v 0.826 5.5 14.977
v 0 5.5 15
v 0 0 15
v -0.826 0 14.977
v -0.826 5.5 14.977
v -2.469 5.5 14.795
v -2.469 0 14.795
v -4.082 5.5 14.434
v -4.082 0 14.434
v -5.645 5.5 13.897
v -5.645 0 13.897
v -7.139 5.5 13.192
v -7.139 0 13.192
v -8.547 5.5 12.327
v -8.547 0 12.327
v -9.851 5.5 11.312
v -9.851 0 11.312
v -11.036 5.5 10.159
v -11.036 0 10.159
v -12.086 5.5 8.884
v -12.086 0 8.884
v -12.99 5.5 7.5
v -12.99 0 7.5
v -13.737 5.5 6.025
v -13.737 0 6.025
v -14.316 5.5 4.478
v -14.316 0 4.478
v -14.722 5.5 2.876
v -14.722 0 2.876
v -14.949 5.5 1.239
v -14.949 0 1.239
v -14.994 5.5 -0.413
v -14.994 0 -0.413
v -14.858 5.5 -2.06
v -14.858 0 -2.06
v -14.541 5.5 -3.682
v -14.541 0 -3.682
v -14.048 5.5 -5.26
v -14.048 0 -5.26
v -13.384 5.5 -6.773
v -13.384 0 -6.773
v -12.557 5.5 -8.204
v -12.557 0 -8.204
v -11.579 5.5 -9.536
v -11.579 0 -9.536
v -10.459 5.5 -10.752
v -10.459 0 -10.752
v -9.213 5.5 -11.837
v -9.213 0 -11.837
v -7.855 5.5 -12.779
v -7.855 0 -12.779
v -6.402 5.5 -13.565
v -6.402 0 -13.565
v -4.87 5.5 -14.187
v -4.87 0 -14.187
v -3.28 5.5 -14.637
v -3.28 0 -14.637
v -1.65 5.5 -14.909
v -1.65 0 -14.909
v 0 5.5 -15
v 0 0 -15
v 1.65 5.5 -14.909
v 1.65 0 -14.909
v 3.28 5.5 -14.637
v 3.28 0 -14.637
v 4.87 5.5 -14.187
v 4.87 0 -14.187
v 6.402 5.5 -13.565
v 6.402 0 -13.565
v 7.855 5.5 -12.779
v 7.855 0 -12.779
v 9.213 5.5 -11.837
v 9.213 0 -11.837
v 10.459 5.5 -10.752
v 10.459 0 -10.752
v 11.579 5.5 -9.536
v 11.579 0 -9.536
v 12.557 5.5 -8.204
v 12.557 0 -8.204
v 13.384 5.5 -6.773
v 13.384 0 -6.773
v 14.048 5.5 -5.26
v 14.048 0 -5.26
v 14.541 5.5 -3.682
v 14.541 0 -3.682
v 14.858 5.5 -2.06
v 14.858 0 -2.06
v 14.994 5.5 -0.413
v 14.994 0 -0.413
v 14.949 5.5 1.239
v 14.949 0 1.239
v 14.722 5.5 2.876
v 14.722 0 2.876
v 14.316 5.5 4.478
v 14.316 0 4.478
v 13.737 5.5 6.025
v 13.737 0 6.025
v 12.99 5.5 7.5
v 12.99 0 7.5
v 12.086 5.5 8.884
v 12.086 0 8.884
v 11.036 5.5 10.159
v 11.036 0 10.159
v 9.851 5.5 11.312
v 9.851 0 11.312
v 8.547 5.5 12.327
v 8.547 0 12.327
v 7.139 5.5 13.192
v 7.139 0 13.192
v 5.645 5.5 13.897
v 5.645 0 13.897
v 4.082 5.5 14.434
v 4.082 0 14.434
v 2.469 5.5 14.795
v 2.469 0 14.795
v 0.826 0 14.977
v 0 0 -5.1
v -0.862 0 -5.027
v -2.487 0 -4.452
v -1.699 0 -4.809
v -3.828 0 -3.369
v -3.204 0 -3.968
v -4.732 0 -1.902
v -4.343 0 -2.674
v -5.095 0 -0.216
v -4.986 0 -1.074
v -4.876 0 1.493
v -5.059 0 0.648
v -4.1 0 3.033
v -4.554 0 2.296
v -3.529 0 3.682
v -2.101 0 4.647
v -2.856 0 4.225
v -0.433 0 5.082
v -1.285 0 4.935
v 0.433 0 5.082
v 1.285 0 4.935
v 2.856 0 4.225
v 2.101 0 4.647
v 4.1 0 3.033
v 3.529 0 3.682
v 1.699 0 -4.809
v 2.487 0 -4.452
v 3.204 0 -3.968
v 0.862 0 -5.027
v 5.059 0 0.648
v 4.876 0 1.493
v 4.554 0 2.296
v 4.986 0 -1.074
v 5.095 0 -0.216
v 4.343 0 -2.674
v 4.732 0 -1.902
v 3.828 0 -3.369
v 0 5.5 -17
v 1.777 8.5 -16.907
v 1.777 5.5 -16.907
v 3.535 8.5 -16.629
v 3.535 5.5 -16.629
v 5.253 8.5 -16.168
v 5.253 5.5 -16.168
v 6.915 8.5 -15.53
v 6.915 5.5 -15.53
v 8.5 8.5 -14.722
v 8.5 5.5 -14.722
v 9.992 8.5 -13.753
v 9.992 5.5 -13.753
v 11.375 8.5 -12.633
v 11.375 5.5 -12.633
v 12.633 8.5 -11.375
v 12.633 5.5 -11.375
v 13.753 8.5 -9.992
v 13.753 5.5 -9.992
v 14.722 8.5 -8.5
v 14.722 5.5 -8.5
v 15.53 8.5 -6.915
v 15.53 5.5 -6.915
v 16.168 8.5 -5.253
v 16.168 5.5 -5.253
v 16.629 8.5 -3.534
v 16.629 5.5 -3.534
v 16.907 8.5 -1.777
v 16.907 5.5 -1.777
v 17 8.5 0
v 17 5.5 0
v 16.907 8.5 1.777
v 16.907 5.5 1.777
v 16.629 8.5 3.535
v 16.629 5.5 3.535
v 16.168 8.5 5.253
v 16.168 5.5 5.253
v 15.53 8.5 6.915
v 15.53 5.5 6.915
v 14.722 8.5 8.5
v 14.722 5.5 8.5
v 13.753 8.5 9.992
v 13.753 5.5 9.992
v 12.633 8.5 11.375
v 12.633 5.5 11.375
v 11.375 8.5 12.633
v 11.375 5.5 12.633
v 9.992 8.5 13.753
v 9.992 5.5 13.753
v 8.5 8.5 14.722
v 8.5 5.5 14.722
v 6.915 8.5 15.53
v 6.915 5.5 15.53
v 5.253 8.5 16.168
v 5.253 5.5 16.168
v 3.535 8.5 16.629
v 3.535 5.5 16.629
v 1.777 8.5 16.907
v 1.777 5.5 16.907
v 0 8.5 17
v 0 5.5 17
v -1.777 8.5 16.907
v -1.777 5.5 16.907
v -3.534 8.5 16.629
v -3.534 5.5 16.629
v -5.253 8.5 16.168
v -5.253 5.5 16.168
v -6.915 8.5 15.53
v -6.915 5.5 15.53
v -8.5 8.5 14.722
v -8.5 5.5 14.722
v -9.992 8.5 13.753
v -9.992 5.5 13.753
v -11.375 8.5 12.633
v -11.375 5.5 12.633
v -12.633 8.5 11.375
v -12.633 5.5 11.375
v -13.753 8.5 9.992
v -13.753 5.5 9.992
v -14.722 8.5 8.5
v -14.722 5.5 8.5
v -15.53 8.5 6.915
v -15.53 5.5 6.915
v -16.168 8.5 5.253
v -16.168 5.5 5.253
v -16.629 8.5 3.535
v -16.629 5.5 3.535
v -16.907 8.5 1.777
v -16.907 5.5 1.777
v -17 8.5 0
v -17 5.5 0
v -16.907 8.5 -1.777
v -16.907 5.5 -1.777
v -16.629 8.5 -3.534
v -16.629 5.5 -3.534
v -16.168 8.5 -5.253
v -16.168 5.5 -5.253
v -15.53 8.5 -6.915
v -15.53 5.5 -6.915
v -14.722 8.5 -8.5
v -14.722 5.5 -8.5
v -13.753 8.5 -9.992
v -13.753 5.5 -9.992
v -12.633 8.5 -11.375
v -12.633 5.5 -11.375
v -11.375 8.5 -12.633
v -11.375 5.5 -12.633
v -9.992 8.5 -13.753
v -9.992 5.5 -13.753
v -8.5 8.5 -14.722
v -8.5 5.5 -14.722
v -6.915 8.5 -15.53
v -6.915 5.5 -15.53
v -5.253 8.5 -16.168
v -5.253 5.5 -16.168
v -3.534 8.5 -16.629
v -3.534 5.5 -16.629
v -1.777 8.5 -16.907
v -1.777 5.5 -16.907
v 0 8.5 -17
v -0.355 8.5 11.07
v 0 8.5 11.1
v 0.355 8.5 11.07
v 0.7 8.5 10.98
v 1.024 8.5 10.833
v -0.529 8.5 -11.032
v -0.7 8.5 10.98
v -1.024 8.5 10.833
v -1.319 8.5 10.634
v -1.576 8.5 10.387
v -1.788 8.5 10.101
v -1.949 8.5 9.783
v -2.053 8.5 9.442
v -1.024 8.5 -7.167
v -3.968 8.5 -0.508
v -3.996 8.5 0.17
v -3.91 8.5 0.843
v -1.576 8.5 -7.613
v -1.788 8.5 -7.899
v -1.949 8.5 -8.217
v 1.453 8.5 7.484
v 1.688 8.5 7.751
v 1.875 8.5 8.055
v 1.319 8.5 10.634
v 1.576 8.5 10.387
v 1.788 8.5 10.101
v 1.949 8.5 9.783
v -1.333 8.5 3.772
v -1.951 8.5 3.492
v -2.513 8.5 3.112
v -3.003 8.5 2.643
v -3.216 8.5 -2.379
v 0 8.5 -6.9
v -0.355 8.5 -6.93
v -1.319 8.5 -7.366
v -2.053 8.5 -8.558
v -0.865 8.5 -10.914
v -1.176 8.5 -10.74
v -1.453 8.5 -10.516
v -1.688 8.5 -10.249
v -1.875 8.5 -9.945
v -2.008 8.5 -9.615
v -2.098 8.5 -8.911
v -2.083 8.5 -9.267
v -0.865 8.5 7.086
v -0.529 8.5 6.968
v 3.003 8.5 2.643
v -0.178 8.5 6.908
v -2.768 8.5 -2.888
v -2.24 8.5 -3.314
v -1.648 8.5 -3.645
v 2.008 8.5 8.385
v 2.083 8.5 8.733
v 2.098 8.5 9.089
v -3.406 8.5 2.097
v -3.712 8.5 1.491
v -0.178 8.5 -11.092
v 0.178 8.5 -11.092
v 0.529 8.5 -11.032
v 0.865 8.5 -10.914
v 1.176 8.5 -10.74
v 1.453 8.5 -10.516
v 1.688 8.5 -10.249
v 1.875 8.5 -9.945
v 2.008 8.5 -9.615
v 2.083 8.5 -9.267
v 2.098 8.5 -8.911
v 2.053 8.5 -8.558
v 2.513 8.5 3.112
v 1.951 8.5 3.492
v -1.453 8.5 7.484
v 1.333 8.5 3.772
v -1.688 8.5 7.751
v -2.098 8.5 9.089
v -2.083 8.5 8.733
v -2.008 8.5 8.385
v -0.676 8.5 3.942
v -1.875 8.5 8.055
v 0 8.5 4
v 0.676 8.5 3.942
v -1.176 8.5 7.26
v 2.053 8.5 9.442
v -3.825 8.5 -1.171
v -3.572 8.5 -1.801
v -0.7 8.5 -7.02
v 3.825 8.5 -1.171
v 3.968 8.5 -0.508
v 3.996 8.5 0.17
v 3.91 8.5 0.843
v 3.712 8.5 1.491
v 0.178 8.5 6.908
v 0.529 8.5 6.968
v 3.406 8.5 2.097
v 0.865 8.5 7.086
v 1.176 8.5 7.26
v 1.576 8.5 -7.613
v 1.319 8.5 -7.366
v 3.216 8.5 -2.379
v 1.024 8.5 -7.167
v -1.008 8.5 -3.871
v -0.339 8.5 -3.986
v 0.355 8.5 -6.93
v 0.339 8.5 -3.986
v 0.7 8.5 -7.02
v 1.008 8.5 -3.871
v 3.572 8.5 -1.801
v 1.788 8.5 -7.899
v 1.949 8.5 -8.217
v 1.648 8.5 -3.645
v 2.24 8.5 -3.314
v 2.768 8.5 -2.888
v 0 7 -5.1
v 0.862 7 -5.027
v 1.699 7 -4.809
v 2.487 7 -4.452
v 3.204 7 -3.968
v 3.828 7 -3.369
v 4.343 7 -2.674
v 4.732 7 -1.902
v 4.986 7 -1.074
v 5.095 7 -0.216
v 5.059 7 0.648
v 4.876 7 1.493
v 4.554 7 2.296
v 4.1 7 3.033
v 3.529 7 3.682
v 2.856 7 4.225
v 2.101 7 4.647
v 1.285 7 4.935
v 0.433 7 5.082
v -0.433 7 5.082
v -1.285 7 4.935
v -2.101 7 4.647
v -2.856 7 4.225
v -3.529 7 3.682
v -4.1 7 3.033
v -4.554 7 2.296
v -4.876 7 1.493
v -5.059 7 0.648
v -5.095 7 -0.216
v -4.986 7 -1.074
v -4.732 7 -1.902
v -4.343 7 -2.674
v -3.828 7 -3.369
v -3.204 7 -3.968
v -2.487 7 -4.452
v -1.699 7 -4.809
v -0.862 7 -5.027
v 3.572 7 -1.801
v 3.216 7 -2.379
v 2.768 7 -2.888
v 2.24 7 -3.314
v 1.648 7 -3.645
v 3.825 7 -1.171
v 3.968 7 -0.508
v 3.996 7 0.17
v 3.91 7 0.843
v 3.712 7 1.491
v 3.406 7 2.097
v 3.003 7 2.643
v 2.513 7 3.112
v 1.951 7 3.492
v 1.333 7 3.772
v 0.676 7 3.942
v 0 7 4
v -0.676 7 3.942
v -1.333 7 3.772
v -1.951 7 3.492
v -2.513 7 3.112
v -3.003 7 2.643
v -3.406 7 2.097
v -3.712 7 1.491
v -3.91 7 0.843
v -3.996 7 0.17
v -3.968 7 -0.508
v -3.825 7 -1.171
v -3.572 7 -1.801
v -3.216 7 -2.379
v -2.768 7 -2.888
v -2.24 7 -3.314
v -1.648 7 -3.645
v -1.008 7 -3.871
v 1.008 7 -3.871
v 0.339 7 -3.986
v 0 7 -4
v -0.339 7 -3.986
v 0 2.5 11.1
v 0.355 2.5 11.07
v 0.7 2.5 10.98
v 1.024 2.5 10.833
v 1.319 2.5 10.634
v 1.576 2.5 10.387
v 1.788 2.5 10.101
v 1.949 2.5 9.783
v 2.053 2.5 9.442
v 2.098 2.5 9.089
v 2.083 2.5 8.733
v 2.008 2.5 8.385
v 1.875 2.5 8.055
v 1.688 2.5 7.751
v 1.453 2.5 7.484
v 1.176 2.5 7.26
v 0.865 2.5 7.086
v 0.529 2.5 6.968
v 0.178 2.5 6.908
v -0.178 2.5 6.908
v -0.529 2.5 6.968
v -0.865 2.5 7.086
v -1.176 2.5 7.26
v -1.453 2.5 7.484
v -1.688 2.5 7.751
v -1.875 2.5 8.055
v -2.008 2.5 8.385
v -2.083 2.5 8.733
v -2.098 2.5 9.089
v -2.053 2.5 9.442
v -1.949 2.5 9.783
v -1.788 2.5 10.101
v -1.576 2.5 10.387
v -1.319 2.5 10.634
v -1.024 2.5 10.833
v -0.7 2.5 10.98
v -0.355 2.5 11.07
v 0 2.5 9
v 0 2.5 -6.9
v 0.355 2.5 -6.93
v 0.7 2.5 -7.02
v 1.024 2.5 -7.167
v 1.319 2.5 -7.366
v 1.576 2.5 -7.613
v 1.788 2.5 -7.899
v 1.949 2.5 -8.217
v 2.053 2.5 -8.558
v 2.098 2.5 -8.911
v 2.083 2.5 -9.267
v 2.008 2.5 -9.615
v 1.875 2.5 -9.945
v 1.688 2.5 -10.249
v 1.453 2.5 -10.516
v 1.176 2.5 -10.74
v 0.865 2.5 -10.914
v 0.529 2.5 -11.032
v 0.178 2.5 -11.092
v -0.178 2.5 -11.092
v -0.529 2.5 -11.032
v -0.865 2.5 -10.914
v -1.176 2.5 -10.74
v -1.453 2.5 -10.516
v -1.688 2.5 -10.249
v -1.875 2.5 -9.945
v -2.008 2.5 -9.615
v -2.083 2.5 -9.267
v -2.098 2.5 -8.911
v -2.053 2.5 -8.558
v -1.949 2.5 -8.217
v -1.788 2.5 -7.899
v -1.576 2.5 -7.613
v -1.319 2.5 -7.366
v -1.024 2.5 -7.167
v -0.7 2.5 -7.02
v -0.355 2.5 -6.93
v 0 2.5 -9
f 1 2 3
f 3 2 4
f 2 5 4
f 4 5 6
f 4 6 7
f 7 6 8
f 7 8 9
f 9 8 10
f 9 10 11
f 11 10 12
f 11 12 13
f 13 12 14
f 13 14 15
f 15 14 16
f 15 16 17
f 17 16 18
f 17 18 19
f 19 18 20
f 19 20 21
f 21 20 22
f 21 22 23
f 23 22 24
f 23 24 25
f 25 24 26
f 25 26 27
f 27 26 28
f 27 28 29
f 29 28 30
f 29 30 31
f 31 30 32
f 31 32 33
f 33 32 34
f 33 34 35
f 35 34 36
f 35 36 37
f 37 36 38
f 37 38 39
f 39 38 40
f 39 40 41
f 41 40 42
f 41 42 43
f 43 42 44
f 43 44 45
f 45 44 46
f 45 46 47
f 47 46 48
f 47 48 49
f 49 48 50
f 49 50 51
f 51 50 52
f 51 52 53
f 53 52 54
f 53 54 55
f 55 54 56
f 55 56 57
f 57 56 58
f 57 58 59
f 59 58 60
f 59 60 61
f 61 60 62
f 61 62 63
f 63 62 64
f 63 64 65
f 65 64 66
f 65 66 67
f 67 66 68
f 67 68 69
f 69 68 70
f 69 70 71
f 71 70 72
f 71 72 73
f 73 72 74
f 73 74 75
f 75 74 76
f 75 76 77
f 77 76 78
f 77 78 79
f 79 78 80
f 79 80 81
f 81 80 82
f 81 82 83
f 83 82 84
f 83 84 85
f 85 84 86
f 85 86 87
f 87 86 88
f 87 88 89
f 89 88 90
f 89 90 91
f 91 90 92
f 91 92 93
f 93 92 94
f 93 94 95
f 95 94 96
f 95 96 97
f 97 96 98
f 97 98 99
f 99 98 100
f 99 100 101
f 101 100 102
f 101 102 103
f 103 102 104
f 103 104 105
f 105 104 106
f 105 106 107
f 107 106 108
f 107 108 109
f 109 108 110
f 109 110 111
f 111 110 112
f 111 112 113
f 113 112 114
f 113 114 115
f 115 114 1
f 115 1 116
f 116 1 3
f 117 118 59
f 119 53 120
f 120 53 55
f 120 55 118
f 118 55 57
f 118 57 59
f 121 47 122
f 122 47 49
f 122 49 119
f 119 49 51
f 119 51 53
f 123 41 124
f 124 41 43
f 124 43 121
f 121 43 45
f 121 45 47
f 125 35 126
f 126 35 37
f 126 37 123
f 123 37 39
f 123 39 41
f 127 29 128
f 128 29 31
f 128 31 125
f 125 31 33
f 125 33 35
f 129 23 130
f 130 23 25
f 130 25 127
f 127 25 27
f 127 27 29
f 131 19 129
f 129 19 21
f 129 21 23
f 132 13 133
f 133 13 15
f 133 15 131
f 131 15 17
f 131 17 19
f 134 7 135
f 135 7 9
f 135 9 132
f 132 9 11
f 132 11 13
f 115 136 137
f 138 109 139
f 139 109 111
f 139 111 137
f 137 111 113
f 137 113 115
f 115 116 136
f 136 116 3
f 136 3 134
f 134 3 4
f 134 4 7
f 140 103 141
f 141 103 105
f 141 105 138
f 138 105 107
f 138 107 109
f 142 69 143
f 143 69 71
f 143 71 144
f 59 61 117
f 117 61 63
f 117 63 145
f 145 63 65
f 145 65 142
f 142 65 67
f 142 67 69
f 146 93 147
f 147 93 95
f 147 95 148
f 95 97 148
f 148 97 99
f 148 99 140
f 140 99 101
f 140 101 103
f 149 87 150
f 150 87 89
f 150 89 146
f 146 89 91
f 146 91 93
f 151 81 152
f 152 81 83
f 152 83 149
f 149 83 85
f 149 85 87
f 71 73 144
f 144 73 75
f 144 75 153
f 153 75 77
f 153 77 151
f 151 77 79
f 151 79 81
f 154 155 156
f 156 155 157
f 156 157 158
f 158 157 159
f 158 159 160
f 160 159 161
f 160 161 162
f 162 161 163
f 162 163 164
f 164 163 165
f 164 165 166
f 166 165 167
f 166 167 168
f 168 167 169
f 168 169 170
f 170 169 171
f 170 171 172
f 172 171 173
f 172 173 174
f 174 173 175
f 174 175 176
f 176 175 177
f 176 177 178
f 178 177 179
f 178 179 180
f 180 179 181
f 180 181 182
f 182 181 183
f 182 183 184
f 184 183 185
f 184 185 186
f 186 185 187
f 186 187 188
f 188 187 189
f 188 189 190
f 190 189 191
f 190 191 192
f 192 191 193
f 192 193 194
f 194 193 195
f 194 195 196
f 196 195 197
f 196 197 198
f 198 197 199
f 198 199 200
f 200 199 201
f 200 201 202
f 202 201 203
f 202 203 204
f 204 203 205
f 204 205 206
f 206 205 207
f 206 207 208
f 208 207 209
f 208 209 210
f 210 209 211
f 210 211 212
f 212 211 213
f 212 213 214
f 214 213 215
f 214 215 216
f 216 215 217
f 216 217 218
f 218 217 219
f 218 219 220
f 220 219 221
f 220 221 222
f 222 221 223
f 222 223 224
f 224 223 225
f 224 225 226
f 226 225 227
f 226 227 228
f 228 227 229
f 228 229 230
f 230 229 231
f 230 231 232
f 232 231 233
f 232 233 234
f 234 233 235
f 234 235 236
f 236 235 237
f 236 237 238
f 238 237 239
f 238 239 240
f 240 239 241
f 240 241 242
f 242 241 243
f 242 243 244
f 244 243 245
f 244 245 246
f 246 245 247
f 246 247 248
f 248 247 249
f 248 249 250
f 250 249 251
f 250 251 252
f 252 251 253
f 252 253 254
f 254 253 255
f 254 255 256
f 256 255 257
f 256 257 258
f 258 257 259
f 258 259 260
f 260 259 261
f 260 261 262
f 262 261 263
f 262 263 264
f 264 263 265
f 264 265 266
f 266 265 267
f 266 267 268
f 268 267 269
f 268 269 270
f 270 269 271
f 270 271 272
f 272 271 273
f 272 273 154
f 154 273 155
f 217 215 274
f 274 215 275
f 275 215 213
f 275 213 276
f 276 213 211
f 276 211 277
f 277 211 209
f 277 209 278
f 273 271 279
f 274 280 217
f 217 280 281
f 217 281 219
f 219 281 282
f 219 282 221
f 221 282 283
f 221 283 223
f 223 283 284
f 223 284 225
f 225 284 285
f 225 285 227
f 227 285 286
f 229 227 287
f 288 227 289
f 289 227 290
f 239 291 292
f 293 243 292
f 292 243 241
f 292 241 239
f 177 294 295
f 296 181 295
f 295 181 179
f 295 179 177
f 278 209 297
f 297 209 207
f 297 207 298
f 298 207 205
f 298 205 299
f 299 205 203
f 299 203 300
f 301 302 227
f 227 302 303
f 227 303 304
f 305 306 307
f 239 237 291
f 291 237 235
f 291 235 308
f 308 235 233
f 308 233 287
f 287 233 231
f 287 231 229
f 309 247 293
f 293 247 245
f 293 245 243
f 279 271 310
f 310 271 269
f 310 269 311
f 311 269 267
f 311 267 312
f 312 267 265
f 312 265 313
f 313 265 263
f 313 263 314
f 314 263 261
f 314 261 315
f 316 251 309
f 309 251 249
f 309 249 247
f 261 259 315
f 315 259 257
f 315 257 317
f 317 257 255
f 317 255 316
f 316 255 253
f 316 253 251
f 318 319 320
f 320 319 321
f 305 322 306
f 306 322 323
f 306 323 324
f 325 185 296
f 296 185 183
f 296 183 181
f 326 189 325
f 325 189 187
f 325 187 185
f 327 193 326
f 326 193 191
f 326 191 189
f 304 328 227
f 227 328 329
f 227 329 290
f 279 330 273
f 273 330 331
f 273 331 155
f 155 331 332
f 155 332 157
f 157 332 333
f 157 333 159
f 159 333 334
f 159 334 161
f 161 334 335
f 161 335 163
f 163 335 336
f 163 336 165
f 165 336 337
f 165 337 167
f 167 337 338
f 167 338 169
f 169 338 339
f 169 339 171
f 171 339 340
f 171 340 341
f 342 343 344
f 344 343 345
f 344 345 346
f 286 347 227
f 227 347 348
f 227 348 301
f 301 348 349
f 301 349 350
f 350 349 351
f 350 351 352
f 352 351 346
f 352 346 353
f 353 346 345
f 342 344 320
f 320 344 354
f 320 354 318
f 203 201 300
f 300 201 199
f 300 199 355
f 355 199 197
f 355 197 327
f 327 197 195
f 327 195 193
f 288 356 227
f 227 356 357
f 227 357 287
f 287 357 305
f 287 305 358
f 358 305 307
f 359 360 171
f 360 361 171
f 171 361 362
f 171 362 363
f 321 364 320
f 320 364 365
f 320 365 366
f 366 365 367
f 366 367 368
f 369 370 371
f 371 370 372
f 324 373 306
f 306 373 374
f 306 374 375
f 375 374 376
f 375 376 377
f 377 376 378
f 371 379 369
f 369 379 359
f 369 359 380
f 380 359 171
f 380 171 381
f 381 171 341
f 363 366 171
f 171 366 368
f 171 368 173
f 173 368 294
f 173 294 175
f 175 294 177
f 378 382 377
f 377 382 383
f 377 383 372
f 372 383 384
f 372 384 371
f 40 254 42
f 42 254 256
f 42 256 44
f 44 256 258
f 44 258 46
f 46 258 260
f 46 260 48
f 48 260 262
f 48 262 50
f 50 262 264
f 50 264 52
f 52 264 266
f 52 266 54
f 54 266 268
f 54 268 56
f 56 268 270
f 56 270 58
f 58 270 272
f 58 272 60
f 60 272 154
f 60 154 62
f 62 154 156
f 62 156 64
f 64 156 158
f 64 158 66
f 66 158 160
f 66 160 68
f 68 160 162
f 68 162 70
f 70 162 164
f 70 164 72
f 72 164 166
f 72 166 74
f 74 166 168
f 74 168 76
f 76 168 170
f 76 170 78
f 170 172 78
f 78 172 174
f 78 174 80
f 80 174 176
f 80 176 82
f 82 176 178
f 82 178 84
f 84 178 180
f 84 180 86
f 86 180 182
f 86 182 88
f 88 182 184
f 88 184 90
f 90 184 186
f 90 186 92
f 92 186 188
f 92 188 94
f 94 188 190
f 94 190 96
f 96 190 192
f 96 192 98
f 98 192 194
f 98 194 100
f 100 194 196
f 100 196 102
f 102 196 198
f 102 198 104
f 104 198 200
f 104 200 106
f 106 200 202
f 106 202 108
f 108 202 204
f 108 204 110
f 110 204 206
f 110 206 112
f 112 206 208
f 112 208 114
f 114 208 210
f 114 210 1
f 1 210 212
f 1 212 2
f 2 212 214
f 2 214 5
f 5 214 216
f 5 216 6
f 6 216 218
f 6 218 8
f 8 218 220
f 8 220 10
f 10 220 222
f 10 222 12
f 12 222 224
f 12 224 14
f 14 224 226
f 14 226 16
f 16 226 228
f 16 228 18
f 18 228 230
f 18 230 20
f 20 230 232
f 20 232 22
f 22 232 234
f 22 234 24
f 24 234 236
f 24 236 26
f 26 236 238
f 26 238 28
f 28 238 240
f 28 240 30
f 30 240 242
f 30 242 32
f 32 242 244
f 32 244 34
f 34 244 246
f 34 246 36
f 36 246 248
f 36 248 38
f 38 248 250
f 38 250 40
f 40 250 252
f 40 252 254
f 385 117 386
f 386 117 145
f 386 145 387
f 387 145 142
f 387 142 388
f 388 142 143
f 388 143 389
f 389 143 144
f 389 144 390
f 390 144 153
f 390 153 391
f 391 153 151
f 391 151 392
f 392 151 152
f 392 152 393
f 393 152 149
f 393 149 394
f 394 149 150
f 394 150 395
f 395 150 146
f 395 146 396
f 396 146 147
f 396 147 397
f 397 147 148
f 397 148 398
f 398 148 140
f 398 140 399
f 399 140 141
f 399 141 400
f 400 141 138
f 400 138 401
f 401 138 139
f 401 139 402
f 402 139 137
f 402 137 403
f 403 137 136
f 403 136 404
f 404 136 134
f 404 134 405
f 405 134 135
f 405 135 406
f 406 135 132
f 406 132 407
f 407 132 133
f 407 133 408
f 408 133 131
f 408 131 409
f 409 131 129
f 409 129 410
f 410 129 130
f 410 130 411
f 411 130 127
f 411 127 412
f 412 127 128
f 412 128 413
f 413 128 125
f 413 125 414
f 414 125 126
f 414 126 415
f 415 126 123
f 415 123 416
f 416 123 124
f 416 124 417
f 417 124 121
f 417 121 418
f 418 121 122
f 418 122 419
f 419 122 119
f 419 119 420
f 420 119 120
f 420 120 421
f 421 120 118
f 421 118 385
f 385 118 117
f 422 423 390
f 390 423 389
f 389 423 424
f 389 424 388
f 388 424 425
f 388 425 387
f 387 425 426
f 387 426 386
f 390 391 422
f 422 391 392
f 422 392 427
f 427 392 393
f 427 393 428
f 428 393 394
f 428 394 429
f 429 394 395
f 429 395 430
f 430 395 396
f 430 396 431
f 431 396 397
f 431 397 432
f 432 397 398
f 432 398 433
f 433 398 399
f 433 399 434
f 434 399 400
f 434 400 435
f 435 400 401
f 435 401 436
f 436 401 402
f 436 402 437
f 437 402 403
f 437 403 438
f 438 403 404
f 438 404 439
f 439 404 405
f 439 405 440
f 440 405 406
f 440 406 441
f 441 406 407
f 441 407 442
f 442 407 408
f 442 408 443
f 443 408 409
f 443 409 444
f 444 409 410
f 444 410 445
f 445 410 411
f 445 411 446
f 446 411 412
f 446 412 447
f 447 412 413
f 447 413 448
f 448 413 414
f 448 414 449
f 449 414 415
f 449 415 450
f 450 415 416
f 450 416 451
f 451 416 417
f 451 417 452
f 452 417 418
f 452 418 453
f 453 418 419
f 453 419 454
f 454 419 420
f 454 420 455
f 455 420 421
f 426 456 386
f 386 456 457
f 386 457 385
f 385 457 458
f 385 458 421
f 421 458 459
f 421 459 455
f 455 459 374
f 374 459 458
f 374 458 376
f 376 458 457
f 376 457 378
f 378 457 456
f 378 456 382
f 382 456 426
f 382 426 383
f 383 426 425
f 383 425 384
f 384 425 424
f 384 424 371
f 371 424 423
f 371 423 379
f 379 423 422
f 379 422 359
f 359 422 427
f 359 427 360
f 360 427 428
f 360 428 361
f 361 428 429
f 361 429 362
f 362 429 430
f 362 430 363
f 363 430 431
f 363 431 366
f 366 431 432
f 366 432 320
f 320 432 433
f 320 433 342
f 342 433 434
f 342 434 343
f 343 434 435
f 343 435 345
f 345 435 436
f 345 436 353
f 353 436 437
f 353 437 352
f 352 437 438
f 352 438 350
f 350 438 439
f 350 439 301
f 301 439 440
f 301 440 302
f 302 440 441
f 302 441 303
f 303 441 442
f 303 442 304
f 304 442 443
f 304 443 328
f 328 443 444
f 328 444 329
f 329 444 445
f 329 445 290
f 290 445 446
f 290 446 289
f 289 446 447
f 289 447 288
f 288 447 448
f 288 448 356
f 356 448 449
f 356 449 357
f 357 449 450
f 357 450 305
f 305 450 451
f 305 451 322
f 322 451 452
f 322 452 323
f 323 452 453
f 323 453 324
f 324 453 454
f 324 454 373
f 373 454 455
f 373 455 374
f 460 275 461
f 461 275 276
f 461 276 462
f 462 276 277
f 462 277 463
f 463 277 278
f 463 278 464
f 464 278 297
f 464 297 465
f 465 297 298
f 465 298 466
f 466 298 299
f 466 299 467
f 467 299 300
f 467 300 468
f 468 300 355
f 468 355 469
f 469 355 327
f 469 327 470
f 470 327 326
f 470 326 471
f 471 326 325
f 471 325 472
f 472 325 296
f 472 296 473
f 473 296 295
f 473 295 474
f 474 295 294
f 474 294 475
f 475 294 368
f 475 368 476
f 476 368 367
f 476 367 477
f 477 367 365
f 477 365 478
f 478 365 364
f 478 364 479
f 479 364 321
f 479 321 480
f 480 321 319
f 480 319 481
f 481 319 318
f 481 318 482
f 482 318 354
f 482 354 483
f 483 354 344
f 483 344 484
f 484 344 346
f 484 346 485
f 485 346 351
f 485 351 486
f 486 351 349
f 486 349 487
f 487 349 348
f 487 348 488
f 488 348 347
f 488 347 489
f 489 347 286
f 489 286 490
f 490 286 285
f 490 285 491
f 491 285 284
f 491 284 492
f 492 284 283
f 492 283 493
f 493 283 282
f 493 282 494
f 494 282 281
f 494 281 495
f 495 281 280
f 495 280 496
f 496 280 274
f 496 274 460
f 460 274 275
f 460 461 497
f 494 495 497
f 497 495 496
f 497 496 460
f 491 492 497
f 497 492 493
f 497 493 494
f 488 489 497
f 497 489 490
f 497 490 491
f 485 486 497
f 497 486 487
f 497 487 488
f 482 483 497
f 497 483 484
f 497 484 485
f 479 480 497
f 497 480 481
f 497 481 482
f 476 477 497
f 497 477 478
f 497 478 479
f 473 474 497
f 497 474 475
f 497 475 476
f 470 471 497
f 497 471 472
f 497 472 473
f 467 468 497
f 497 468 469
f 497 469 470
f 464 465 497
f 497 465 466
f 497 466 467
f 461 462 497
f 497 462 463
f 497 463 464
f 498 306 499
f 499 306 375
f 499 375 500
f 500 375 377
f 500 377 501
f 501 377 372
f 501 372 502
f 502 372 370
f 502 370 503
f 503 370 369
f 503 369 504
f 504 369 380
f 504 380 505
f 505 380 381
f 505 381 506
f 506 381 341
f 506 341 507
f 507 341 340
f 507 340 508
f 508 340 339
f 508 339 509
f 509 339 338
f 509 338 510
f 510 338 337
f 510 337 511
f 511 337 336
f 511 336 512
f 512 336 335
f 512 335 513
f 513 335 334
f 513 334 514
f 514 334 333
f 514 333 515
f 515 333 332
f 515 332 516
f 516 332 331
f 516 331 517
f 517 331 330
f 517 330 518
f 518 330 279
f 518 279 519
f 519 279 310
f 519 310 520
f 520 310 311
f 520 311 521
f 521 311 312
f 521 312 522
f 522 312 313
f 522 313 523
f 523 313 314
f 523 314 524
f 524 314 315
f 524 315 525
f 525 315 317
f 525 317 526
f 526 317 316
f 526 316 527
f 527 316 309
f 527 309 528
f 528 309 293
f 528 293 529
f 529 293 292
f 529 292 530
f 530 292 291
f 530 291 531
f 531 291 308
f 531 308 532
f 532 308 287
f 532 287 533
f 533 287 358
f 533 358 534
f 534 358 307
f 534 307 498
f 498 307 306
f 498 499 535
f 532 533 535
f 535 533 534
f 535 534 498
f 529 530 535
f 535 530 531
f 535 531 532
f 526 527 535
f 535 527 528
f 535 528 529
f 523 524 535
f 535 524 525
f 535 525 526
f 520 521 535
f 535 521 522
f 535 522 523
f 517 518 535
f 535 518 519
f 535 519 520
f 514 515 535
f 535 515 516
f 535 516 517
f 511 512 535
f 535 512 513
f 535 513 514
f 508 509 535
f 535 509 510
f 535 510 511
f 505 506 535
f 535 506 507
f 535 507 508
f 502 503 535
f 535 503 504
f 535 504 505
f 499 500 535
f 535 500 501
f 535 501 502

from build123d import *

# Parameters (mm, degrees)
SKETCH1_R           = 15
BOSS_EXTRUDE1_DEPTH = 5.5
SKETCH2_R           = 17
BOSS_EXTRUDE2_DEPTH = 3
SKETCH3_R           = 5.1
CUT_EXTRUDE1_DEPTH  = 7
SKETCH4_R           = 2.1
SKETCH4_R_2         = 4
CUT_EXTRUDE2_DEPTH  = 6


with BuildPart() as part:
    # Sketch1 → Boss-Extrude1 (new body)
    with BuildSketch(Plane(origin=(0, 0, 0), x_dir=(1, 0, 0), z_dir=(0, 1, 0))):
        Circle(SKETCH1_R)
    extrude(amount=BOSS_EXTRUDE1_DEPTH)

    # Sketch2 → Boss-Extrude2 (add)
    with BuildSketch(Plane(origin=(0, 5.5, 0), x_dir=(1, 0, 0), z_dir=(0, 1, 0))):
        Circle(SKETCH2_R)
    extrude(amount=BOSS_EXTRUDE2_DEPTH)

    # Sketch3 → Cut-Extrude1 (cut)
    with BuildSketch(Plane.XZ):
        Circle(SKETCH3_R)
    extrude(amount=-CUT_EXTRUDE1_DEPTH, mode=Mode.SUBTRACT)

    # Sketch4 → Cut-Extrude2 (cut)
    with BuildSketch(Plane(origin=(0, 8.5, 0), x_dir=(1, 0, 0), z_dir=(0, 1, 0))):
        with Locations((0, 9)):
            Circle(SKETCH4_R)
        with Locations((0, -9)):
            Circle(SKETCH4_R)
        Circle(SKETCH4_R_2)
    extrude(amount=-CUT_EXTRUDE2_DEPTH, mode=Mode.SUBTRACT)


solid = part.part
